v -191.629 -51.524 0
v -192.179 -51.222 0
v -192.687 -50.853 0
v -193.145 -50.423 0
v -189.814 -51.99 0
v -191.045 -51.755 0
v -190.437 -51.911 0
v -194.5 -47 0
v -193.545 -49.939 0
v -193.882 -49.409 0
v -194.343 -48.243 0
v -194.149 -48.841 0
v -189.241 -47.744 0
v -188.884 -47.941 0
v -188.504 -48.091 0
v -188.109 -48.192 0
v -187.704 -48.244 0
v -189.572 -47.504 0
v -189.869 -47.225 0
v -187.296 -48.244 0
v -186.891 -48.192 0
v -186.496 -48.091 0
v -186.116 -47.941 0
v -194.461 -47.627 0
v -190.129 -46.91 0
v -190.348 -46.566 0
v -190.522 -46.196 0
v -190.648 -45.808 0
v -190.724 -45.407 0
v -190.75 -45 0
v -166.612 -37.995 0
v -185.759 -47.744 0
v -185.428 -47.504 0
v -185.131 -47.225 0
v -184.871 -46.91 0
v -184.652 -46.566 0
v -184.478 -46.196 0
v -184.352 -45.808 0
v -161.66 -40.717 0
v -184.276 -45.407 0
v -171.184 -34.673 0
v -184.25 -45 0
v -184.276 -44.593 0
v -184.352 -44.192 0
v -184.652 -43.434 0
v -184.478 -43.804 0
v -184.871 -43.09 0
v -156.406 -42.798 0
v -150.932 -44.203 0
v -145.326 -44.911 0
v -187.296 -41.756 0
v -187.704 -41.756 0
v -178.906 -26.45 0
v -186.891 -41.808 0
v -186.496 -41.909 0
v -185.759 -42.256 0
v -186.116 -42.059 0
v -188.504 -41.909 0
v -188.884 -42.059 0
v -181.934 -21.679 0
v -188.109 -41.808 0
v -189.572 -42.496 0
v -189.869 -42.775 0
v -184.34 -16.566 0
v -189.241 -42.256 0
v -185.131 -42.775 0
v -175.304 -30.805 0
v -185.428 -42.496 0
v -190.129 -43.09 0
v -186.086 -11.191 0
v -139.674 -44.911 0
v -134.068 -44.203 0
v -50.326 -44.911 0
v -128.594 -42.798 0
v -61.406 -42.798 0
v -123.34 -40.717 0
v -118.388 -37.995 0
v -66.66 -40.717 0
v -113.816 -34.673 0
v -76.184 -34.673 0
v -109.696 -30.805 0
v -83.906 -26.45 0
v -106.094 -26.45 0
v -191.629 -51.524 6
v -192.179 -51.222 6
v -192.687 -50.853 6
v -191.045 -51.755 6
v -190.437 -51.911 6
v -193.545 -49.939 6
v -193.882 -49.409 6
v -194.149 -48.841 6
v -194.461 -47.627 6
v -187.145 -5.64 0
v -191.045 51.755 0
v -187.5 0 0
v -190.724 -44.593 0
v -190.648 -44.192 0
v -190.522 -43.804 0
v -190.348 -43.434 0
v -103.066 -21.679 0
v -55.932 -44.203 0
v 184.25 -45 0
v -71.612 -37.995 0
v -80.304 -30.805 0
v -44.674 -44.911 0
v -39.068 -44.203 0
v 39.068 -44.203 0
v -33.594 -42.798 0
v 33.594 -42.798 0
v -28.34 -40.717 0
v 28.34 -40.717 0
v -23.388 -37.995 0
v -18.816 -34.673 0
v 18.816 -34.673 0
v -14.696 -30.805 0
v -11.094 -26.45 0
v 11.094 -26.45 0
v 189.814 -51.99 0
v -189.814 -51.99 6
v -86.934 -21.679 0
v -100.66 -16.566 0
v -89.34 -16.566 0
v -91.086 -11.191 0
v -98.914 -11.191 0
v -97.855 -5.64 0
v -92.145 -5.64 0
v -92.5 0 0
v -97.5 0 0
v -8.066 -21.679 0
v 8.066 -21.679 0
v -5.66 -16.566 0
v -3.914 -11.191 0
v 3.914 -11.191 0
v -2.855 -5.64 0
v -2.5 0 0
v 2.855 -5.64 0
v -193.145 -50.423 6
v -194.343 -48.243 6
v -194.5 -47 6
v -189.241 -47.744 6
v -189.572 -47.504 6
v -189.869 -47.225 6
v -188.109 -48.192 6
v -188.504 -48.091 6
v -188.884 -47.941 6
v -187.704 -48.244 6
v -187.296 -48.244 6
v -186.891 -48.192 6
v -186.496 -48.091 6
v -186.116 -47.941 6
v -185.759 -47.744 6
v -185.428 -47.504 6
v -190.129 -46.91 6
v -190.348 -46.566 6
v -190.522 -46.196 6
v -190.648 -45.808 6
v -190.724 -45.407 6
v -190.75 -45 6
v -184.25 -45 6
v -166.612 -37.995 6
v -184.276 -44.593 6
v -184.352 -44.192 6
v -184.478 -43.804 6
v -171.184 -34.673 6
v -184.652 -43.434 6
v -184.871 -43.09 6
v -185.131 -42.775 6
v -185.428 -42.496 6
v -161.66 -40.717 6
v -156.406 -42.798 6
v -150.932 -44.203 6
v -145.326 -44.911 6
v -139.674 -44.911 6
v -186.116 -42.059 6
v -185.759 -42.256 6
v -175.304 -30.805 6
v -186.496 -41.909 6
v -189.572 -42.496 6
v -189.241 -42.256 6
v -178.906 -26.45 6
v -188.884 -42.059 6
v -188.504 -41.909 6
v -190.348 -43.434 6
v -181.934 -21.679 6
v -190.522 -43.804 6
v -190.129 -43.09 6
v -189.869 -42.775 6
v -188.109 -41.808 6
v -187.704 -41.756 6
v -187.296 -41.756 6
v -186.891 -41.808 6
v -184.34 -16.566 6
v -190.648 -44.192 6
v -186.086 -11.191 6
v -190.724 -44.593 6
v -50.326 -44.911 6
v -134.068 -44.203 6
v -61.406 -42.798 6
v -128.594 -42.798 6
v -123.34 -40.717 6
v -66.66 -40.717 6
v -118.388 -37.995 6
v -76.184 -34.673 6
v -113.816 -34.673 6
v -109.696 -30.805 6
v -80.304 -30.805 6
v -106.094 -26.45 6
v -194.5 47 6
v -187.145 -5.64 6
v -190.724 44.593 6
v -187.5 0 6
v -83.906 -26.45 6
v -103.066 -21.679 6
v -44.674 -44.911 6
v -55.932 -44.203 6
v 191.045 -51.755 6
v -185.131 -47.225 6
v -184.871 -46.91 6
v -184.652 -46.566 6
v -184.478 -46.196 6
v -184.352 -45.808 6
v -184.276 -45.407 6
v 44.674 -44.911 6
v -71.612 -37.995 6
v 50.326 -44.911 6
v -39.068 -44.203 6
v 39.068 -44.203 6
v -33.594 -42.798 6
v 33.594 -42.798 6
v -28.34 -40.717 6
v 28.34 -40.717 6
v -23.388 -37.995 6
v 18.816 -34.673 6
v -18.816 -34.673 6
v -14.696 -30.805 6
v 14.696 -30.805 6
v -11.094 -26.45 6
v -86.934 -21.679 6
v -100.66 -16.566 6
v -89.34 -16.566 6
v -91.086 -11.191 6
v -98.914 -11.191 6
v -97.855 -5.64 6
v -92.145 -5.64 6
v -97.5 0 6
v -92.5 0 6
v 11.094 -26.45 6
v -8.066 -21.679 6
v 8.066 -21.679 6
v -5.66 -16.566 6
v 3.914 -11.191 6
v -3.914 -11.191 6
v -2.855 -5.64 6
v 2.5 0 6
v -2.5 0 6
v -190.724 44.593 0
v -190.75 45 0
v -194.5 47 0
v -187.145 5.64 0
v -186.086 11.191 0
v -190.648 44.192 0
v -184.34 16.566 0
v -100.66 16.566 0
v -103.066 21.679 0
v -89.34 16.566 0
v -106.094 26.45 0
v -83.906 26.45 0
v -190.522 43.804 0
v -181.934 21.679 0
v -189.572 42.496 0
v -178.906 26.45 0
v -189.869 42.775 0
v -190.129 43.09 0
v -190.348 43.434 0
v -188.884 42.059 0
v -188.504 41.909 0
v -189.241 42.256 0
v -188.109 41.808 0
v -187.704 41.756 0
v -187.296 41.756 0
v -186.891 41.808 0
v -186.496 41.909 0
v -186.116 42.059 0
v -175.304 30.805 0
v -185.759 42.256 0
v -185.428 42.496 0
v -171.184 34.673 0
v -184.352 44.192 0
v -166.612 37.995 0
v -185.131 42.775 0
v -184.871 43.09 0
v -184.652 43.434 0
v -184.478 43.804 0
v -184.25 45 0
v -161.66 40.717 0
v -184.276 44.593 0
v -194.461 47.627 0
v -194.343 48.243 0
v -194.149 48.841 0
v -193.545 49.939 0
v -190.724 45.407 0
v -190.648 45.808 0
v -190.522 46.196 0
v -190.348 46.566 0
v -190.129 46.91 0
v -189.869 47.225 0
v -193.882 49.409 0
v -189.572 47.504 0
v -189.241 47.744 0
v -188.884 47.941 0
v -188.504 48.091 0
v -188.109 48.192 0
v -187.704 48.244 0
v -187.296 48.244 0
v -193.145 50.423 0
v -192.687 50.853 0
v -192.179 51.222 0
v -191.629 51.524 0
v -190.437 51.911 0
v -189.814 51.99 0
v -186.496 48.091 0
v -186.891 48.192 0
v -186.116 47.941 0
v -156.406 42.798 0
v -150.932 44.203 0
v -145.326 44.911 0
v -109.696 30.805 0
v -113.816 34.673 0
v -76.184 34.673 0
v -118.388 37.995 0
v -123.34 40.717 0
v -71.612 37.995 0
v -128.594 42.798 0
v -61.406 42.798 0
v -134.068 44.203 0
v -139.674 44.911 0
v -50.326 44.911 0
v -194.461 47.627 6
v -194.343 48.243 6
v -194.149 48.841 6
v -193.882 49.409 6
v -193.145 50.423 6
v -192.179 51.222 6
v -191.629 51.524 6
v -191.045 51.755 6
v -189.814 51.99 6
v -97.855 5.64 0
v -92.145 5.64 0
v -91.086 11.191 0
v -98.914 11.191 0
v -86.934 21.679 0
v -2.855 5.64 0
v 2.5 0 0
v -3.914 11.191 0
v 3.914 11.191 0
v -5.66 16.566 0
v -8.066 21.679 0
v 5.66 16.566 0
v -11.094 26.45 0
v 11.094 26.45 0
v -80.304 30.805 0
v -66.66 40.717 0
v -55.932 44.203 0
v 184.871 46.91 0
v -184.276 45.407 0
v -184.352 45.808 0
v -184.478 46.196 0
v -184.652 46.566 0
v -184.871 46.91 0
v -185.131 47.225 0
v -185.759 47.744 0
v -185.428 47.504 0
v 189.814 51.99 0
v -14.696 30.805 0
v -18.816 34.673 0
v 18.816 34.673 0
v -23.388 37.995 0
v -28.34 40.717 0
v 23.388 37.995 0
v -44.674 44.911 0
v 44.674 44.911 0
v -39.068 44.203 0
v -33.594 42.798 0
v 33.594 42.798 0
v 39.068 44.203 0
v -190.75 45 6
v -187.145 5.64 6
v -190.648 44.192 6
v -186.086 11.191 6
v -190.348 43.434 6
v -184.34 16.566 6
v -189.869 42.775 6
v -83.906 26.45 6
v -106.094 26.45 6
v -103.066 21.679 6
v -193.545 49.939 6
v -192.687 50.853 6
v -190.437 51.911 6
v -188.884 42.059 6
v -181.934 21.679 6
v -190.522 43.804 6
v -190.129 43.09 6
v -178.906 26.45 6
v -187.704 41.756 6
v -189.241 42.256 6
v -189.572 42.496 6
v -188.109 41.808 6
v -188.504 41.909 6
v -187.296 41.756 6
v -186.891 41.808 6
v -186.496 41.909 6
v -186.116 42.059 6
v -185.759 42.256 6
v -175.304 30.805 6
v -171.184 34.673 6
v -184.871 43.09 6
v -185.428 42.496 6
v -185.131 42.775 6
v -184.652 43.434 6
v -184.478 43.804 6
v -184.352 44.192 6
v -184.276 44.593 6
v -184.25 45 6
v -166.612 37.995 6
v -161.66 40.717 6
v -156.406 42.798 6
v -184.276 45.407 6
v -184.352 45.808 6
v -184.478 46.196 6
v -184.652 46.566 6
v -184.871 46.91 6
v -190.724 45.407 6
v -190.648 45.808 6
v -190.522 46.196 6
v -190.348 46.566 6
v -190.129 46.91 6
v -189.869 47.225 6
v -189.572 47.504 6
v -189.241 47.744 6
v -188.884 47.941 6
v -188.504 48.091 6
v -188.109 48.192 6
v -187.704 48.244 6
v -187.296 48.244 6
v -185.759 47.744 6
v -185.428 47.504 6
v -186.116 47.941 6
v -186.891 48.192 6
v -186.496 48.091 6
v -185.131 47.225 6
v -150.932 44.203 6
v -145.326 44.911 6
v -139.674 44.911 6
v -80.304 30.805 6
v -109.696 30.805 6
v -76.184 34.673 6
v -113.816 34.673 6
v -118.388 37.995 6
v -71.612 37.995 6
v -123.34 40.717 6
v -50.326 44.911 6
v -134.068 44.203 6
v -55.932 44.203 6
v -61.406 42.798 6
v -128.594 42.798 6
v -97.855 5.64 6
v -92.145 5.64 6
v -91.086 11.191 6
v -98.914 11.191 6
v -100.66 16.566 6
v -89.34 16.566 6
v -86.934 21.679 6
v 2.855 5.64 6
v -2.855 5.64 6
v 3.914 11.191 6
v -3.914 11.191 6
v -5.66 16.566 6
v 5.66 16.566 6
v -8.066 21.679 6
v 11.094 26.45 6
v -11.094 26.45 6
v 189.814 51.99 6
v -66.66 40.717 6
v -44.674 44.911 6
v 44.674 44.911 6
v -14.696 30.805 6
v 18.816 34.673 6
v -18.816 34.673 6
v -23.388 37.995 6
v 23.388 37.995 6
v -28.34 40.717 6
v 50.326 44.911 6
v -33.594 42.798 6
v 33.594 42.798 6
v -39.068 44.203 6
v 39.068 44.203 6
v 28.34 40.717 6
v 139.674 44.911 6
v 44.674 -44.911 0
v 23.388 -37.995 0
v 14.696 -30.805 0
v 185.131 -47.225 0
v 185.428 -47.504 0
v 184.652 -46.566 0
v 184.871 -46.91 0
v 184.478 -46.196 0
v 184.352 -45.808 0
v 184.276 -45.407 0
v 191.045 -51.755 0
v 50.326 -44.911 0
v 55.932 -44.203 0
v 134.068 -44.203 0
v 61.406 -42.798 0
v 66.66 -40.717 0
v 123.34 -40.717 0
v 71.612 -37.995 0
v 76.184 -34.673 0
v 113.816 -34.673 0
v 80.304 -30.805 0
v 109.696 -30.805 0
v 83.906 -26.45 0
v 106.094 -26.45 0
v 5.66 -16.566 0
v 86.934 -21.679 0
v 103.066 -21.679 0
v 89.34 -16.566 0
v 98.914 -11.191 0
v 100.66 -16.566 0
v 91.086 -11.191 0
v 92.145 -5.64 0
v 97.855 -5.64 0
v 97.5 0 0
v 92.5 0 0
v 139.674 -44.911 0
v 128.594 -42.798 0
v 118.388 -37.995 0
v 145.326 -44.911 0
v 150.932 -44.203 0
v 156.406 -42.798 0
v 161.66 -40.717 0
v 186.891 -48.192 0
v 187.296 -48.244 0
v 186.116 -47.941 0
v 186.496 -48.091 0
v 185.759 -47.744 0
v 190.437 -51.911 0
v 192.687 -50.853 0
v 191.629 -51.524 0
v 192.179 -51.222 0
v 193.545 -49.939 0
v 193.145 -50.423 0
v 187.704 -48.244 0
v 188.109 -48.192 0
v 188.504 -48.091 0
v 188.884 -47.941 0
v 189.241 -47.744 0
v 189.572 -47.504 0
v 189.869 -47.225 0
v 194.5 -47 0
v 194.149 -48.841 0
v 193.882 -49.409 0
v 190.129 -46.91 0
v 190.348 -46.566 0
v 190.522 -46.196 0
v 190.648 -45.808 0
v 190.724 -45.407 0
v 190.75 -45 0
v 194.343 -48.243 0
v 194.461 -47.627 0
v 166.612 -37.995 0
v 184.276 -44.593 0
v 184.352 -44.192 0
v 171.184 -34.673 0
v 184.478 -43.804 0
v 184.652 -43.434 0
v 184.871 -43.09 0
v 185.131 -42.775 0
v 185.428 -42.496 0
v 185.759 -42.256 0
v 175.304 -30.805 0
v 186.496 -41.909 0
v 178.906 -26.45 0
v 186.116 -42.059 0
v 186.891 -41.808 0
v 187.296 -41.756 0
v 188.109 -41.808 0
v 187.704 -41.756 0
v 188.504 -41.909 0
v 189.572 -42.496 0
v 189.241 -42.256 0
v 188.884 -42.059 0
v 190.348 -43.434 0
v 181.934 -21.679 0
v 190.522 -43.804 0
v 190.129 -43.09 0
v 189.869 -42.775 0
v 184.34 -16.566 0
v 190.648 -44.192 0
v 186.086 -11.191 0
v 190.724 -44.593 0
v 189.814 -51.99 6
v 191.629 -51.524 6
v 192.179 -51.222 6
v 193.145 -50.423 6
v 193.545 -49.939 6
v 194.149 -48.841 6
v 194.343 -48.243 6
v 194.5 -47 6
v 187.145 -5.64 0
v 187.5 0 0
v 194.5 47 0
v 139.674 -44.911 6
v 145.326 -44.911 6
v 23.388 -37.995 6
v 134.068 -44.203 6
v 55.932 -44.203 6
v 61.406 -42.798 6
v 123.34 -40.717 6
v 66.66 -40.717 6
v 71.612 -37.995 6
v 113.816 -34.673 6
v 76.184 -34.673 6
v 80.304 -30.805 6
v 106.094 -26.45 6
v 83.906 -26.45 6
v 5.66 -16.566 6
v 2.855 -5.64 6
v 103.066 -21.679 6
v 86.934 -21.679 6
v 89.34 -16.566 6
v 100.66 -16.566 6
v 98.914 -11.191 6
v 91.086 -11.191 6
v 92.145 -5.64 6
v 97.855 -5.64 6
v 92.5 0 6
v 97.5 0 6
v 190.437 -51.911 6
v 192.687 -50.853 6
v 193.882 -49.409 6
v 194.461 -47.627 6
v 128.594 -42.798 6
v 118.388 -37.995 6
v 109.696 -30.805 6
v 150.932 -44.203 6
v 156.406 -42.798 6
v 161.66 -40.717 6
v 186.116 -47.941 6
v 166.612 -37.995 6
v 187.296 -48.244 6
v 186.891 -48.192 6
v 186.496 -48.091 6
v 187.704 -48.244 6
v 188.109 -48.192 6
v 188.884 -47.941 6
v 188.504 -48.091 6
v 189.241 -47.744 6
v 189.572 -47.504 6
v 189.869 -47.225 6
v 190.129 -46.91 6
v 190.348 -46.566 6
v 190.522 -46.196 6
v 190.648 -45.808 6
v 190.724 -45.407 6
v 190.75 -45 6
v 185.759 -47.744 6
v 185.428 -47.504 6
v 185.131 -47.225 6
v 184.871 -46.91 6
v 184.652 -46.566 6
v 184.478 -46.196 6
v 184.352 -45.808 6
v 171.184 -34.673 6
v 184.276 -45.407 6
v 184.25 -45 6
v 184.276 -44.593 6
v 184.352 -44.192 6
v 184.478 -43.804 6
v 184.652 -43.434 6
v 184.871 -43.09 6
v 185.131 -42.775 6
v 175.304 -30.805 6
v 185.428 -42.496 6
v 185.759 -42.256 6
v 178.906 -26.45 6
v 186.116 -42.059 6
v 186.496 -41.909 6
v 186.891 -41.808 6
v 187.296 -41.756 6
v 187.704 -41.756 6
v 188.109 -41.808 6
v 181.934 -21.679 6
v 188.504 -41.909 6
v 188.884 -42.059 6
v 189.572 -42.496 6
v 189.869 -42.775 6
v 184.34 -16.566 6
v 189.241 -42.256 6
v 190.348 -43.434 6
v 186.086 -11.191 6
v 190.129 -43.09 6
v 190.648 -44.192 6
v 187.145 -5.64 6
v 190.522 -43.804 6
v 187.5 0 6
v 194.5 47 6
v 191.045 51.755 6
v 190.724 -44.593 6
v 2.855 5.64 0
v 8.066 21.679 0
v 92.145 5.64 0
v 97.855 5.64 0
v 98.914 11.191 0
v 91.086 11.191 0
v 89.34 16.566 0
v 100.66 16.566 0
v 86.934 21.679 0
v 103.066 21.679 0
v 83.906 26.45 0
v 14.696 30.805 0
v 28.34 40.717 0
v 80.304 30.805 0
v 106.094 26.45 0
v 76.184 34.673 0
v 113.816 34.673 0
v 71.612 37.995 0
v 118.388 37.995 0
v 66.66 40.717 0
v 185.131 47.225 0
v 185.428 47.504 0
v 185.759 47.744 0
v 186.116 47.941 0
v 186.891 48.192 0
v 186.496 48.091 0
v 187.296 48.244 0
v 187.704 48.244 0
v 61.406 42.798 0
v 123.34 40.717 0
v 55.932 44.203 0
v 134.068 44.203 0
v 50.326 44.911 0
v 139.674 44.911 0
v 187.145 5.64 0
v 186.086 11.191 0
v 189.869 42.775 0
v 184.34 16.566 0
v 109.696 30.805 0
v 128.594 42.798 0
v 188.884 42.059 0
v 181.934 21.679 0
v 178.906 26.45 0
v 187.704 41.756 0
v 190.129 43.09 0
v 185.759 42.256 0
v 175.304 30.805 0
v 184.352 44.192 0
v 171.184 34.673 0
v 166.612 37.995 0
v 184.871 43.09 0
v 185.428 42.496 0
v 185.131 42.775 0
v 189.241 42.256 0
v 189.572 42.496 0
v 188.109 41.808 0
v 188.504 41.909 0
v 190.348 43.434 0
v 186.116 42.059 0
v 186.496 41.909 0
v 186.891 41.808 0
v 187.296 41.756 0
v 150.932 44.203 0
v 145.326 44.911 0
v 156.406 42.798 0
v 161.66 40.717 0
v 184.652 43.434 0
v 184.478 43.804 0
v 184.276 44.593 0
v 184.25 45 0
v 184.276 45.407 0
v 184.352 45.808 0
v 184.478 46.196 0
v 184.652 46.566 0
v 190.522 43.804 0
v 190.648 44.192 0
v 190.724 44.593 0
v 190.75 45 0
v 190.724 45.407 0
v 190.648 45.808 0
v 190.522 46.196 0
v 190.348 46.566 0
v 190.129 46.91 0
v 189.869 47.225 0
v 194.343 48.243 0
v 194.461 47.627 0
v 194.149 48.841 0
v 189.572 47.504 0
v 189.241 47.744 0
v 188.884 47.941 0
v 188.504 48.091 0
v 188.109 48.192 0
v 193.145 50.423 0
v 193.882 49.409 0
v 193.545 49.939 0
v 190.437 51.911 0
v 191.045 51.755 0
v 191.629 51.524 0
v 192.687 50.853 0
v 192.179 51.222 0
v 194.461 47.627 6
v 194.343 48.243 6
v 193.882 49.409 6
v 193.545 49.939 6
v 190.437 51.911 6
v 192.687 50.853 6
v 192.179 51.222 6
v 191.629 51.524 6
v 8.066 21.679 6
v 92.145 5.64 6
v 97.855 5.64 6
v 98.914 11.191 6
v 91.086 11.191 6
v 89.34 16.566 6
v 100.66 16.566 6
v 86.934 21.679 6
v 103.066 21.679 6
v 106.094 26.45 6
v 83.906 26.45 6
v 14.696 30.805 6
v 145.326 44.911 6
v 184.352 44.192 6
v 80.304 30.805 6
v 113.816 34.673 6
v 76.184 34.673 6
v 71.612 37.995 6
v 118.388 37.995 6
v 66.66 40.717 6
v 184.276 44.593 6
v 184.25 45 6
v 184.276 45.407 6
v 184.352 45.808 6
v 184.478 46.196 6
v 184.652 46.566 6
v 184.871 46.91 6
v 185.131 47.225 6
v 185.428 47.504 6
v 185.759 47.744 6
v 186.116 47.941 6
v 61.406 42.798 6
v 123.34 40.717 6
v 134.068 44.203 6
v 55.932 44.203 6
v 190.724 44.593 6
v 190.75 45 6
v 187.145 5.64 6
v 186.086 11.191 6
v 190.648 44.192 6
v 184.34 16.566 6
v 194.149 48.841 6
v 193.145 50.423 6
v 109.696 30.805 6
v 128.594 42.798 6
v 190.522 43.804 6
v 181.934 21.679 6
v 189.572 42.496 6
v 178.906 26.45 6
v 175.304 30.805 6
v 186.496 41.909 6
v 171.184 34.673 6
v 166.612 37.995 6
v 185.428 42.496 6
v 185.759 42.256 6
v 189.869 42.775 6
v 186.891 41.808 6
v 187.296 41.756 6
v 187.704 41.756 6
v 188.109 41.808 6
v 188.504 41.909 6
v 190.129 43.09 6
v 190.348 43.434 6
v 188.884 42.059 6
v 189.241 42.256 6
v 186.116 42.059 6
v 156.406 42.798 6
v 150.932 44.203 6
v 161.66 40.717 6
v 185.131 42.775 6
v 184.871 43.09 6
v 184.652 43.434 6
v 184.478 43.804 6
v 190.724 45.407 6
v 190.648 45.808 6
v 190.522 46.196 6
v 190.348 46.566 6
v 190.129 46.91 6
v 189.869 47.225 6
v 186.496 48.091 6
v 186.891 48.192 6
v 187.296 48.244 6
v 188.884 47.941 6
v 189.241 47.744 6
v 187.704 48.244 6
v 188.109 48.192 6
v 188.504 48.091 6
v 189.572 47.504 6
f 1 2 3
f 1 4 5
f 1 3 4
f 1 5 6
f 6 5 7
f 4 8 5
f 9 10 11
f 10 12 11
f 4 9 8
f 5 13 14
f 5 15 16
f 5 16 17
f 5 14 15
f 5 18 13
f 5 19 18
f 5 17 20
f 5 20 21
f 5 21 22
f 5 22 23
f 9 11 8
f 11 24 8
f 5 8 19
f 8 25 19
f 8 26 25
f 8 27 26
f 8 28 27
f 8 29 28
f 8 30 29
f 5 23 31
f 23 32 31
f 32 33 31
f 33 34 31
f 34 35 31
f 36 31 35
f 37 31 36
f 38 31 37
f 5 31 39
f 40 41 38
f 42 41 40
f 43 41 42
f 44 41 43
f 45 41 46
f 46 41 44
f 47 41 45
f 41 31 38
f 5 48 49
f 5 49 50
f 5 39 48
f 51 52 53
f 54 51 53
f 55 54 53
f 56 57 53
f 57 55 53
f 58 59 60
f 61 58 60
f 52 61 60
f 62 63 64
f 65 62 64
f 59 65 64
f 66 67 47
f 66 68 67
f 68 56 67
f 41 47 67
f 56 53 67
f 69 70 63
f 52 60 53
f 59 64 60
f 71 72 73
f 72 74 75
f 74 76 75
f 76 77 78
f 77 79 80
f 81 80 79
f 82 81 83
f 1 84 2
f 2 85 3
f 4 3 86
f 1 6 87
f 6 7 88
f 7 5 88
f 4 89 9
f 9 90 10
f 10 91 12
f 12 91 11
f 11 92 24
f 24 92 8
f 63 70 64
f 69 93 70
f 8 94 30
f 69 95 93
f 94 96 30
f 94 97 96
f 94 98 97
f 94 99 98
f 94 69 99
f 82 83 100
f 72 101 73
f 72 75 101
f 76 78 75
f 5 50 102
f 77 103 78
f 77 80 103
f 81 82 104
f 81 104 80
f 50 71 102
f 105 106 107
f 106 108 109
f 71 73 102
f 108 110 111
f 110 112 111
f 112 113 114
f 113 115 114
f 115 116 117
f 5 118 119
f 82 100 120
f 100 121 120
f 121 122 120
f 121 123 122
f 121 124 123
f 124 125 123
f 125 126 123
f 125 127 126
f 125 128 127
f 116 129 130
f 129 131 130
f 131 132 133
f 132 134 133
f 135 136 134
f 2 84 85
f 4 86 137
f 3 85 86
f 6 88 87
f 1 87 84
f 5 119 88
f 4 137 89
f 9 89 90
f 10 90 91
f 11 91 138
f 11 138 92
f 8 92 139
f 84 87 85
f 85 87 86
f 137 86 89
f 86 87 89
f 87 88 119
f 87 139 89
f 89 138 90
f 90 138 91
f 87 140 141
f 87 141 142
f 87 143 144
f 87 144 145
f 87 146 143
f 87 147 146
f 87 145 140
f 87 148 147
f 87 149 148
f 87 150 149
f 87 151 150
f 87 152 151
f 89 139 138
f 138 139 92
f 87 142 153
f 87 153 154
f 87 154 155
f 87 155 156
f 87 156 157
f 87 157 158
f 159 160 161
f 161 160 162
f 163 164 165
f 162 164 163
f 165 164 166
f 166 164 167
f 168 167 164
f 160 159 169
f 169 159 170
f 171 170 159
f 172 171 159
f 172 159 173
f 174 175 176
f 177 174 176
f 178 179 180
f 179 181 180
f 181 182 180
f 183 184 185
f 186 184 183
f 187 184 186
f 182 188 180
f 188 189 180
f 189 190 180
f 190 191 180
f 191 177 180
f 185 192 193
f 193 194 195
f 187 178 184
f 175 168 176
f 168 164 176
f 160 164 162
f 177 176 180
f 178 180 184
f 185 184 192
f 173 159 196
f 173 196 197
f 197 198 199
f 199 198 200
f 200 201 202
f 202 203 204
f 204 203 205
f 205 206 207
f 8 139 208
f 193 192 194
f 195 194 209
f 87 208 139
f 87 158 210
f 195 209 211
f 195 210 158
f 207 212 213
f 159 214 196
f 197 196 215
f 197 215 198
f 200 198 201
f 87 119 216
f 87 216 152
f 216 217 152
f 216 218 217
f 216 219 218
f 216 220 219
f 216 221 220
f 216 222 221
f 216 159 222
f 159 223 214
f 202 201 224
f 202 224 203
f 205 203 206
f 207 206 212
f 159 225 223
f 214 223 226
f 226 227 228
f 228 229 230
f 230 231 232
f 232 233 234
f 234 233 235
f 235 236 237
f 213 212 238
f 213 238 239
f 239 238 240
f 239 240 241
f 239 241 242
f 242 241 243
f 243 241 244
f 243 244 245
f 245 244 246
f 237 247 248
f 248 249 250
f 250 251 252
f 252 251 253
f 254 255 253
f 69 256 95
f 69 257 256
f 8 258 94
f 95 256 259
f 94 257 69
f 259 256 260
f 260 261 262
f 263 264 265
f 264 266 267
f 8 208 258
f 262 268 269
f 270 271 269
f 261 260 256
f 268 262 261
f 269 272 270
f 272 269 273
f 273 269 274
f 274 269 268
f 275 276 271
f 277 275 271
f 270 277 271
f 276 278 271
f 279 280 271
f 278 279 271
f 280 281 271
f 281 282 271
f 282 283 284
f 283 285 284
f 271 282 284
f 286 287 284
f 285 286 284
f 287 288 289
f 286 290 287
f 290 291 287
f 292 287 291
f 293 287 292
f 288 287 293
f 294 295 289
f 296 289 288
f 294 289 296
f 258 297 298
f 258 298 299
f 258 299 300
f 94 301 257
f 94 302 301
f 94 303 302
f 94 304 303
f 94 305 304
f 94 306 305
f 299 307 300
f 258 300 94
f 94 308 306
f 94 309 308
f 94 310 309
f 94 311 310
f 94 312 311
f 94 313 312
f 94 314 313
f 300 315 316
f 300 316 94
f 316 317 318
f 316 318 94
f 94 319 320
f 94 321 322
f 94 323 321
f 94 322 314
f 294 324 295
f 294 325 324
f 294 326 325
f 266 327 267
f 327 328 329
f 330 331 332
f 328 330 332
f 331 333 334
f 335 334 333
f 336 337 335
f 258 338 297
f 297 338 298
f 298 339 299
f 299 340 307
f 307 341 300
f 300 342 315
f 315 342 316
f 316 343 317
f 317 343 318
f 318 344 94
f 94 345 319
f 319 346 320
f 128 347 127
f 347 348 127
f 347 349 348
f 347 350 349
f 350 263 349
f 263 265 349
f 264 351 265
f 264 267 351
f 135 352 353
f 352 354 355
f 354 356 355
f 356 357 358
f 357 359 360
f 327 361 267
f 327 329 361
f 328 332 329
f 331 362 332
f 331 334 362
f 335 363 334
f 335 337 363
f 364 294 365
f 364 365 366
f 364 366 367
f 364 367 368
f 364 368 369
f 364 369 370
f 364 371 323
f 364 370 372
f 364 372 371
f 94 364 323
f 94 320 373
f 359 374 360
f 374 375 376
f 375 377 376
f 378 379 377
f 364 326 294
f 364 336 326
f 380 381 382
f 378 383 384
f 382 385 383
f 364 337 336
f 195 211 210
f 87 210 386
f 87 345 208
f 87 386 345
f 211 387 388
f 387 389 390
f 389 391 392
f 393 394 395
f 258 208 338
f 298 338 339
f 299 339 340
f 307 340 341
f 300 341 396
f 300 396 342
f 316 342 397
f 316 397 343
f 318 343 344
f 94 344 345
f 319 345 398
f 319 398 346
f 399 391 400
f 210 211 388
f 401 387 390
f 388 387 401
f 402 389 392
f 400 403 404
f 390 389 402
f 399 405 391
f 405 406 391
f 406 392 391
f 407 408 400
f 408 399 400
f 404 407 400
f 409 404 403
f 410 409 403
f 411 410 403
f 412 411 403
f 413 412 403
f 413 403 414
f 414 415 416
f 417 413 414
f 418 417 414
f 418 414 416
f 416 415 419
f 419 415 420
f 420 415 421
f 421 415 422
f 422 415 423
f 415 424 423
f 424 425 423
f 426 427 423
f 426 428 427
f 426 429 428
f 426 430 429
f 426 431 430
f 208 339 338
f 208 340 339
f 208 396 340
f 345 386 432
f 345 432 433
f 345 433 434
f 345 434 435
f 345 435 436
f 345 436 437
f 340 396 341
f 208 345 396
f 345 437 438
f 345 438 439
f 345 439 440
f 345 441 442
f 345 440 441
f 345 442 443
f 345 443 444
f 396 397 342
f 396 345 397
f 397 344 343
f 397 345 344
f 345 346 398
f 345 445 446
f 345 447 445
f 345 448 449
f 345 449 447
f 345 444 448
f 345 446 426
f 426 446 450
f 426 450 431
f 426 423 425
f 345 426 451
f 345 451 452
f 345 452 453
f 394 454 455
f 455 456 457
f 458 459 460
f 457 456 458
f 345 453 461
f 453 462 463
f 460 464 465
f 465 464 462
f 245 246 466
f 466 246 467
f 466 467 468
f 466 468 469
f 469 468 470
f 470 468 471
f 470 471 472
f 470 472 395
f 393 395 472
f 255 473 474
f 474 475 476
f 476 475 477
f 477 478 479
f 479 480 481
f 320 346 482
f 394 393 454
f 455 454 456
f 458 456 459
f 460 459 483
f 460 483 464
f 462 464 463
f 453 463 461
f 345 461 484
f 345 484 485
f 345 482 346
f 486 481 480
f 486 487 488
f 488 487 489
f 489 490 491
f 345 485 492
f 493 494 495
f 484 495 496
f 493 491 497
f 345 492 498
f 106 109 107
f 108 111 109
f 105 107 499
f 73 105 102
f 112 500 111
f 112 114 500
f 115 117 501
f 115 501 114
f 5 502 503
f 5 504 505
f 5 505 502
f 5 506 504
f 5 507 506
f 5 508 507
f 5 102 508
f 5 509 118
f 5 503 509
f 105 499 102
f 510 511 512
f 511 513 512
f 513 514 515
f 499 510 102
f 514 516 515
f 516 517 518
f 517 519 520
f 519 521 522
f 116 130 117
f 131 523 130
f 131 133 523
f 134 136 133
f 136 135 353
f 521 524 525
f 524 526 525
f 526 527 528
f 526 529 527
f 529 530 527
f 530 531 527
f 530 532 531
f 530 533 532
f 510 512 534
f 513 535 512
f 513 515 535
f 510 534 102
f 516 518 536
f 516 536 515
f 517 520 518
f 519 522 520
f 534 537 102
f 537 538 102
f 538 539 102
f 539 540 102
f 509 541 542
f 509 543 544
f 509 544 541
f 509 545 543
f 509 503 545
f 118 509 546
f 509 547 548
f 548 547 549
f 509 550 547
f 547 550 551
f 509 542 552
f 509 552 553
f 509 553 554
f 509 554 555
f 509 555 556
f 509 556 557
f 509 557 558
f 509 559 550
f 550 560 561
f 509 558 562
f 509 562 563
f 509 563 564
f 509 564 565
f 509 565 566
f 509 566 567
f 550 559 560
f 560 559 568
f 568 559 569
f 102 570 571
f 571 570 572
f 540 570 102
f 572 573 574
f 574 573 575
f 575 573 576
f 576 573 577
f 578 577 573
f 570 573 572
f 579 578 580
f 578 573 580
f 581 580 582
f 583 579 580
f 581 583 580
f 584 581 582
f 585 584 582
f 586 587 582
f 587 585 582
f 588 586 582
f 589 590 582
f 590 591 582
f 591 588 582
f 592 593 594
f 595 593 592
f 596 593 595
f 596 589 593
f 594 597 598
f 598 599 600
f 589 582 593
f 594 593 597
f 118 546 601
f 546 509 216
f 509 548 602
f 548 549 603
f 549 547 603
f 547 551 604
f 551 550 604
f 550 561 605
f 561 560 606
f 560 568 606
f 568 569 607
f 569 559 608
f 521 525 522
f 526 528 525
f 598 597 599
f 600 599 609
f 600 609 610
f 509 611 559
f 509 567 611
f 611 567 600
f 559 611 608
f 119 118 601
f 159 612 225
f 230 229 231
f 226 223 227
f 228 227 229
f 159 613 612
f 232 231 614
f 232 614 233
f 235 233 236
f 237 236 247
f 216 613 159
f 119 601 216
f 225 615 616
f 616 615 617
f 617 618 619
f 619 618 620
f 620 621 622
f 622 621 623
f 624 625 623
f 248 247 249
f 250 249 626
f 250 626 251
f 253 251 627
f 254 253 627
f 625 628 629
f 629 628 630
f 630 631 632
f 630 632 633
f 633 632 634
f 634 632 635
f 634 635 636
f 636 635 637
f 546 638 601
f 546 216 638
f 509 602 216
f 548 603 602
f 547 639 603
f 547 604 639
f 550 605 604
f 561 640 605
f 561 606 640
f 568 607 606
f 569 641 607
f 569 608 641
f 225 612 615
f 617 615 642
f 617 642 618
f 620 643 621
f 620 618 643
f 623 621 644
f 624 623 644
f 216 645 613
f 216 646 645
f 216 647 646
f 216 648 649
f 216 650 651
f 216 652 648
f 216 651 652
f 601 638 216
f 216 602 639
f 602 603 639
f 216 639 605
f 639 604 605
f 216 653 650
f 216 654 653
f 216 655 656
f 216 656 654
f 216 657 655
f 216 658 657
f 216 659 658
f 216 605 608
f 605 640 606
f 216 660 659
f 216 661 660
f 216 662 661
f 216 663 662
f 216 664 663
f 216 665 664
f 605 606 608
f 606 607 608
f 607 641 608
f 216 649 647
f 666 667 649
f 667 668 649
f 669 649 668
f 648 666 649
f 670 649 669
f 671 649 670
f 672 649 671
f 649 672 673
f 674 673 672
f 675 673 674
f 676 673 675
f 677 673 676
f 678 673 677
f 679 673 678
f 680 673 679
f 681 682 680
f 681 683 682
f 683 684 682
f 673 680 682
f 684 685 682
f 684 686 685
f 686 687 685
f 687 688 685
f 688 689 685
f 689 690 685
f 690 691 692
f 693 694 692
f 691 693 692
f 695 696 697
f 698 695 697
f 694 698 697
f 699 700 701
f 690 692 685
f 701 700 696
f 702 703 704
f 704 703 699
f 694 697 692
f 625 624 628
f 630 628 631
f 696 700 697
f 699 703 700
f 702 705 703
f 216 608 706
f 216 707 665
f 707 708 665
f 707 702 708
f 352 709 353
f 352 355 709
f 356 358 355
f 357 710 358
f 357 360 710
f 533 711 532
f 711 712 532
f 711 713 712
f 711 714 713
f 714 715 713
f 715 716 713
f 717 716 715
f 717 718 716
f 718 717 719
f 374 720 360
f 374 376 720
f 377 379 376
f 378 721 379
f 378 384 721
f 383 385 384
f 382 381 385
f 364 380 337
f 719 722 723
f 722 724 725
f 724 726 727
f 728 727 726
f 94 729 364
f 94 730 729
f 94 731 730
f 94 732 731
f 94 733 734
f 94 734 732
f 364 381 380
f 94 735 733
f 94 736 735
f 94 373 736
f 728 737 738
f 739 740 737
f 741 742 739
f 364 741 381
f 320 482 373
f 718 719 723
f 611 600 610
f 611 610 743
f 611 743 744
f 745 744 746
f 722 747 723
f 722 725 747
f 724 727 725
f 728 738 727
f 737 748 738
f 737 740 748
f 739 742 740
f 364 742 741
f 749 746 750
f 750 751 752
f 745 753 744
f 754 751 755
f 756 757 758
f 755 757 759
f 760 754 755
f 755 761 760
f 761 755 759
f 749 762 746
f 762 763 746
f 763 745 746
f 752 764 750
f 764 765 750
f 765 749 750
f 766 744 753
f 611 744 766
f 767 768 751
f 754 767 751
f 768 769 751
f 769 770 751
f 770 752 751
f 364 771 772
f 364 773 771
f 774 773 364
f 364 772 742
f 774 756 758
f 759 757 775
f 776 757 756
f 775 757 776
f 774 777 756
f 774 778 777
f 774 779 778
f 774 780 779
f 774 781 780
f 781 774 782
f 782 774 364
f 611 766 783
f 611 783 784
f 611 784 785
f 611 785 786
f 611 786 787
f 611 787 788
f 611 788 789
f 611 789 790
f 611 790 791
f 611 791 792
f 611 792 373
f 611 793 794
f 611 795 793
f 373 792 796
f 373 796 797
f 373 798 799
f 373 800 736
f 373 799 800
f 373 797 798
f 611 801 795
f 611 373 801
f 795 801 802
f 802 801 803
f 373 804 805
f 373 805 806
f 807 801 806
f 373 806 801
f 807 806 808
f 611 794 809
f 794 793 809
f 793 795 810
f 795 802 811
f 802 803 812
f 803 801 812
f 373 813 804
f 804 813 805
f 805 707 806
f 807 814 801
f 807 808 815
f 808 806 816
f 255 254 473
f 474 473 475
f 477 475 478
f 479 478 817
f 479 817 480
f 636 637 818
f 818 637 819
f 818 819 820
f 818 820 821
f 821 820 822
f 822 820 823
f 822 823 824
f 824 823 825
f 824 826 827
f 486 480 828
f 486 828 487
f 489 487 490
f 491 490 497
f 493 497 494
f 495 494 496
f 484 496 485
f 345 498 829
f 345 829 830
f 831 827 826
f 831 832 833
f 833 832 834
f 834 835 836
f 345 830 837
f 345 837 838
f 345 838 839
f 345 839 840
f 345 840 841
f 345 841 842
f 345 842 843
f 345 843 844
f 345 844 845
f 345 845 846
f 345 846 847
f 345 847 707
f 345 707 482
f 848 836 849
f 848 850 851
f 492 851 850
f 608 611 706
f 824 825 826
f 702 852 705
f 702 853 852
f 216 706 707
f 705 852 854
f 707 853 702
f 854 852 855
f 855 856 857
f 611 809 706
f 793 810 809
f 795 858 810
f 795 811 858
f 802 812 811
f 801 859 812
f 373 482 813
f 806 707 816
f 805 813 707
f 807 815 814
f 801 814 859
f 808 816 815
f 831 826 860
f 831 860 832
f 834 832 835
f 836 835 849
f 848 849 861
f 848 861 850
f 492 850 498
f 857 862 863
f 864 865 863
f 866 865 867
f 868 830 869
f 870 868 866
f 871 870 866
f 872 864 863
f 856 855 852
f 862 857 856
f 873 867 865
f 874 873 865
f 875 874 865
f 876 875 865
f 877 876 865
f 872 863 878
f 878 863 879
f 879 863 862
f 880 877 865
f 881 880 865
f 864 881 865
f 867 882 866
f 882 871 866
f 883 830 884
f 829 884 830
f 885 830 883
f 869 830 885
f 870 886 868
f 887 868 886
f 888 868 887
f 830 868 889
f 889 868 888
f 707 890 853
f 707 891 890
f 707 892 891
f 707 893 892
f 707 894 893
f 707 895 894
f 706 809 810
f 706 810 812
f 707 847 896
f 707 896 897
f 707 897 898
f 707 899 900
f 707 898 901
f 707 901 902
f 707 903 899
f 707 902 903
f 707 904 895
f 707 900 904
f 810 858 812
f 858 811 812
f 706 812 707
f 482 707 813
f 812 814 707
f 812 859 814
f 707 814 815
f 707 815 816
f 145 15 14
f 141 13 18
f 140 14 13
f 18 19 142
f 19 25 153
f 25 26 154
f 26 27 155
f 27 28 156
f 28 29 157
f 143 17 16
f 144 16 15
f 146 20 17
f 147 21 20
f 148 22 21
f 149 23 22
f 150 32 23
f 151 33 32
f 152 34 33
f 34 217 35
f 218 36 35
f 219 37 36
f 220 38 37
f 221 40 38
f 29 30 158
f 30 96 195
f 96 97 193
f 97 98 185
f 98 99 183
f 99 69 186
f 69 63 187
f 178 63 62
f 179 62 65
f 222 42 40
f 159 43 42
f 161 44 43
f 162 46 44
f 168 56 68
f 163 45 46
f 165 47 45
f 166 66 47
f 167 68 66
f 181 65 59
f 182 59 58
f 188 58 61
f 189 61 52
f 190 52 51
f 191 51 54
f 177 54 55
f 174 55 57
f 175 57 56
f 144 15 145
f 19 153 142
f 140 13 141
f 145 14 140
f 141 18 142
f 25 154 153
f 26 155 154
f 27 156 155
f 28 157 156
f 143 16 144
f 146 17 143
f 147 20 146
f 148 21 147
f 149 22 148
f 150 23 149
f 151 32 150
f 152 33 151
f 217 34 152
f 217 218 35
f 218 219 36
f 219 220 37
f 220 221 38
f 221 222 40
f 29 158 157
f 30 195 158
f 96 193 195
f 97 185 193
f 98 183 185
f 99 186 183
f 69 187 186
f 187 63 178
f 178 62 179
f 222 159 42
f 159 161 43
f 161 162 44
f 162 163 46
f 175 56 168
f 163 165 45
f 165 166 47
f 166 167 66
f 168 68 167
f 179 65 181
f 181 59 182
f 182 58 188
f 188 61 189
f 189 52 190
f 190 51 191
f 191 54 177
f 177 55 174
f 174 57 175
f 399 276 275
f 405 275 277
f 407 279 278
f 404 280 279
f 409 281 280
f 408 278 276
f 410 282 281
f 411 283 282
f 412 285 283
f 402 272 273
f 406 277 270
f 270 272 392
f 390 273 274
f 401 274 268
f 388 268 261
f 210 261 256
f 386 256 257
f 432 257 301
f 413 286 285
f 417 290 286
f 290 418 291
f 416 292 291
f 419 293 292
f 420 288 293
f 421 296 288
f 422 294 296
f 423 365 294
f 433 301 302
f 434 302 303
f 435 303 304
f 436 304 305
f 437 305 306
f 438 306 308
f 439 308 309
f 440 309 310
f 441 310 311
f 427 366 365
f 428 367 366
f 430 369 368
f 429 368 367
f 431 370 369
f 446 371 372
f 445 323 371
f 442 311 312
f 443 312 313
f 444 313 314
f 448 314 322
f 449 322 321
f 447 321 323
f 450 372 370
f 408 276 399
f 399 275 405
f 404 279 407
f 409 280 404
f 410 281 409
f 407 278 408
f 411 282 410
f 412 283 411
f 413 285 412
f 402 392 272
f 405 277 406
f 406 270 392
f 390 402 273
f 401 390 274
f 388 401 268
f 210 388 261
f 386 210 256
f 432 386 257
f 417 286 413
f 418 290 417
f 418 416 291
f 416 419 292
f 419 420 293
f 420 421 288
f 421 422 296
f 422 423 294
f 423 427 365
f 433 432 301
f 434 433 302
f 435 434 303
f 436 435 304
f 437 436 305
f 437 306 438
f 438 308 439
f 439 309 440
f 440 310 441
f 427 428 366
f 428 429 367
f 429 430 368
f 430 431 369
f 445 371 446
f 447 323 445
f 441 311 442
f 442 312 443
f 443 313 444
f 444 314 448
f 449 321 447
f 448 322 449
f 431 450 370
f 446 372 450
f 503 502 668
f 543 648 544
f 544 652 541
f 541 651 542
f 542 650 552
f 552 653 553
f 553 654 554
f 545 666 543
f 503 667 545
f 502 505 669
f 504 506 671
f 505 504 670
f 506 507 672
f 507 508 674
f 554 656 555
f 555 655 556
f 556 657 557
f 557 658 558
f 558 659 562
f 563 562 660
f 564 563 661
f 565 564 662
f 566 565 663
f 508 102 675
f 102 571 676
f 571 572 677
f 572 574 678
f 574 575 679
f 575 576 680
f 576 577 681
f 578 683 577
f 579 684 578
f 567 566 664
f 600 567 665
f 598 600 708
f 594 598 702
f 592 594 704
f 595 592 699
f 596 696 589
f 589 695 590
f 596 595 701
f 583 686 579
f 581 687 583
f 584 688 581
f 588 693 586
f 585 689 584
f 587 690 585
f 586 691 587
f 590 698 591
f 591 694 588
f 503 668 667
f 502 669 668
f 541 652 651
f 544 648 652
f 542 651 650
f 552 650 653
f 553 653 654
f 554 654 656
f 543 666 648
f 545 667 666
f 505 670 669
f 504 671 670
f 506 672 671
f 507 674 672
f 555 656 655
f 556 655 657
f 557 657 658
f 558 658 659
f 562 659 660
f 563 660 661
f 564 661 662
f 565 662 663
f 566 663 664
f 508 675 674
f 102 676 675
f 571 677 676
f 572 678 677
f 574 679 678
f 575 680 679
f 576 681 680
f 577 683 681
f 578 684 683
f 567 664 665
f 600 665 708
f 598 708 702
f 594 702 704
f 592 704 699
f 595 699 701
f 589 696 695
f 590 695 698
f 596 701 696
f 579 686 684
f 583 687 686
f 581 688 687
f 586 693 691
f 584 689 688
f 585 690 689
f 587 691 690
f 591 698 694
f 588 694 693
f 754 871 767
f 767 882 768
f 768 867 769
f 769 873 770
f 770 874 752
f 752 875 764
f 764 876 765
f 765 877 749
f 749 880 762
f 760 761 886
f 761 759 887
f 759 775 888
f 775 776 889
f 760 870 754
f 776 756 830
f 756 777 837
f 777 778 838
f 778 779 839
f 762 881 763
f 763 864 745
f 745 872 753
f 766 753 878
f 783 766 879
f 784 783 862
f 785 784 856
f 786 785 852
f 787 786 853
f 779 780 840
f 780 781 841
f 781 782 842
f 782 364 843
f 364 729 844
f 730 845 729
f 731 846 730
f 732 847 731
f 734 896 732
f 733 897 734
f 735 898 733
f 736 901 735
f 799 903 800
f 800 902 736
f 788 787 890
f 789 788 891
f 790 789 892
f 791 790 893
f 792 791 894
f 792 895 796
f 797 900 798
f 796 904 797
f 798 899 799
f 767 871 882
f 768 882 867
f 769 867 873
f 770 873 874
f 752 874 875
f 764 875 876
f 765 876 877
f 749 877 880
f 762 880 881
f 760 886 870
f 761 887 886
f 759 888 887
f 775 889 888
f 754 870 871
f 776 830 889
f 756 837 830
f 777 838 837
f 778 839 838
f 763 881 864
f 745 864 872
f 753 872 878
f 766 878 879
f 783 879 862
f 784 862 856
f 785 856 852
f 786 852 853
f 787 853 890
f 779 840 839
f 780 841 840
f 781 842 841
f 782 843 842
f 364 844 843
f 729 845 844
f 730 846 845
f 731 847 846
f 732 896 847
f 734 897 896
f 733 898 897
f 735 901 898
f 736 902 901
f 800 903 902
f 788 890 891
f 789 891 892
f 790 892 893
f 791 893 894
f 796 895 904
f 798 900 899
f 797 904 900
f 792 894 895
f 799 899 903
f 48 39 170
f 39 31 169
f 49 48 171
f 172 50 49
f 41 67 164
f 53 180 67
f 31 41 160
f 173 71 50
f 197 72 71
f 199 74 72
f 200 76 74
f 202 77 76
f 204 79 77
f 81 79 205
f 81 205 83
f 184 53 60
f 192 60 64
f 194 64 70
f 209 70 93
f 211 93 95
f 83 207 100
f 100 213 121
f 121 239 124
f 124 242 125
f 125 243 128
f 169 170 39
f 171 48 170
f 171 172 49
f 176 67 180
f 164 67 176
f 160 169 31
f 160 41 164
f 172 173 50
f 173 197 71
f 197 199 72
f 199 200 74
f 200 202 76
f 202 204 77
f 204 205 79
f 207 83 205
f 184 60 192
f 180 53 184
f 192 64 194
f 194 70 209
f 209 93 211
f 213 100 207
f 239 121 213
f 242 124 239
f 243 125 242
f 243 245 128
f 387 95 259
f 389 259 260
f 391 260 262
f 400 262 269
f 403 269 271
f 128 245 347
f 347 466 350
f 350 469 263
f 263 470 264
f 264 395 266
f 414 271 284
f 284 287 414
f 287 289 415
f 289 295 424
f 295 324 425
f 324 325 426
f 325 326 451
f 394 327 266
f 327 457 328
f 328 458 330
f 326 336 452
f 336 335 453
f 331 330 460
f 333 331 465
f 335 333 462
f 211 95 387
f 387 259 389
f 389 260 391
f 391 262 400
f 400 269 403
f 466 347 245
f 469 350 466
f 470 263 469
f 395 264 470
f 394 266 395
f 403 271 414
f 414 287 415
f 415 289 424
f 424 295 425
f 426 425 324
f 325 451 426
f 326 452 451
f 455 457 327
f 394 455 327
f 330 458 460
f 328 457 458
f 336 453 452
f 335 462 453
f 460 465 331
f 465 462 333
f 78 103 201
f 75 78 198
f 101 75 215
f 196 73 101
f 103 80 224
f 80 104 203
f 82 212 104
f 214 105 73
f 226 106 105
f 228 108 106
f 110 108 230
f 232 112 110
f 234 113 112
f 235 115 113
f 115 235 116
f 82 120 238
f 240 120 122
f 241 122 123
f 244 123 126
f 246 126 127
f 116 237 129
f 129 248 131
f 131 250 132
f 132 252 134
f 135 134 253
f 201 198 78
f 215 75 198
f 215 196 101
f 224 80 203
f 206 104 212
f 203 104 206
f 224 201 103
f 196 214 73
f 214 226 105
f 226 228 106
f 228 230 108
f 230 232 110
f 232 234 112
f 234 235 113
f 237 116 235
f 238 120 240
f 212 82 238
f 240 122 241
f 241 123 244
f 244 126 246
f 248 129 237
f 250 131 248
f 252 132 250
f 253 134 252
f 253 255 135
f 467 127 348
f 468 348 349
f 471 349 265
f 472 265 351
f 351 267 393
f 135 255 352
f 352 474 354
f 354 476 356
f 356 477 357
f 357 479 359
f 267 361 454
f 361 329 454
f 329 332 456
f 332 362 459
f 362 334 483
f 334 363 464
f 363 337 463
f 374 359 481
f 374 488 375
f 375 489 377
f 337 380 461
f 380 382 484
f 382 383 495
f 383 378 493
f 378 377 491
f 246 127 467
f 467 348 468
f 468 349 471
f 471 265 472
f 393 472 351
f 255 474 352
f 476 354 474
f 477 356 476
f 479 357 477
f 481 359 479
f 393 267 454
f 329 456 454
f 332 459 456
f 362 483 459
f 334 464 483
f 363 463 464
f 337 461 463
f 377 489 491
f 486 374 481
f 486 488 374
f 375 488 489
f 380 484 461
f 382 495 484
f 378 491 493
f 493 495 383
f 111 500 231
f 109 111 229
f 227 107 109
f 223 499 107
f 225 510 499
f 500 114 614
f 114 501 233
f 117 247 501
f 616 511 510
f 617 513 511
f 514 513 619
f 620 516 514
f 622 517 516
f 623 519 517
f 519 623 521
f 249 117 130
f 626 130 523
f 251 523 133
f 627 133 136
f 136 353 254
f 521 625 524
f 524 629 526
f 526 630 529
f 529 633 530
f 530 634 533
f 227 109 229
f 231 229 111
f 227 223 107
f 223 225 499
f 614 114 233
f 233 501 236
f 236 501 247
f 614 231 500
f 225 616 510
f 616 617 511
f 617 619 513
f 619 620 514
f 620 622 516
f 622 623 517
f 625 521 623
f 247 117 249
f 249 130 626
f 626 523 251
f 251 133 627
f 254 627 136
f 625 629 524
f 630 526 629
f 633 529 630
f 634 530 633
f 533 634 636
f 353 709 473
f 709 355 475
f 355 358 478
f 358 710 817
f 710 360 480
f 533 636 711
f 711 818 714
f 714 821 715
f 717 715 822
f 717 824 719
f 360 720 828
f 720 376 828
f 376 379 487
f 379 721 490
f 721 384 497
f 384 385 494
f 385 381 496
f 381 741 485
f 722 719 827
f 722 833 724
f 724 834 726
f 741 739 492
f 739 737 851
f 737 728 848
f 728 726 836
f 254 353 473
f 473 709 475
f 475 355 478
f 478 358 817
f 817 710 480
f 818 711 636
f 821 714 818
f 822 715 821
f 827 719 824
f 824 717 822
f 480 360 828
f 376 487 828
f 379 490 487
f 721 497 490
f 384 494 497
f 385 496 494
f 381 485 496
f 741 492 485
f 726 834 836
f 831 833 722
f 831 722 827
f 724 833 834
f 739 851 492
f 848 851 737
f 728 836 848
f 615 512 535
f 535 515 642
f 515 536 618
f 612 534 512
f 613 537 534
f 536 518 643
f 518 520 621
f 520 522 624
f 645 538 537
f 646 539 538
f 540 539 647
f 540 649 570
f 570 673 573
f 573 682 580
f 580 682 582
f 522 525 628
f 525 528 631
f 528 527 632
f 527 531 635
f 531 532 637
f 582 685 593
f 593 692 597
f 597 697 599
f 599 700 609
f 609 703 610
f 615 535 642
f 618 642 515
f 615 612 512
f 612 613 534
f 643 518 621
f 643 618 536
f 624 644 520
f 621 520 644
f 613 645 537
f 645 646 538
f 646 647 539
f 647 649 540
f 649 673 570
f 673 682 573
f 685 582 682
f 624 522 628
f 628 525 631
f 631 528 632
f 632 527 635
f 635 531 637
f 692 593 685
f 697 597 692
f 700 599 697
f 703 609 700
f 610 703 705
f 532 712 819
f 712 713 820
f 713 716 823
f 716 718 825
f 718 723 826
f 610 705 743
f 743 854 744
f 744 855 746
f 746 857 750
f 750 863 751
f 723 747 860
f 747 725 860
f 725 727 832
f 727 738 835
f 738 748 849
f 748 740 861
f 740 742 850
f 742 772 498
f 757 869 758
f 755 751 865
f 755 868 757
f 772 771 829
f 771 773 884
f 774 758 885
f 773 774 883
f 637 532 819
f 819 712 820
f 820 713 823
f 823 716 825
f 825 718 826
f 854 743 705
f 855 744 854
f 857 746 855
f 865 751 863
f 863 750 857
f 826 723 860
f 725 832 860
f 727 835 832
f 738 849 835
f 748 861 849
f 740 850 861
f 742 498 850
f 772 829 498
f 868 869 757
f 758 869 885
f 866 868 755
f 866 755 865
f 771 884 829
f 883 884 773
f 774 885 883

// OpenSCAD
$fn = 50;

difference() {
	union() {
		hull() {
			translate(v = [-189.5, 47.0, 0]) {
				cylinder(h = 6, r = 5);
			}
			translate(v = [189.5, 47.0, 0]) {
				cylinder(h = 6, r = 5);
			}
			translate(v = [-189.5, -47.0, 0]) {
				cylinder(h = 6, r = 5);
			}
			translate(v = [189.5, -47.0, 0]) {
				cylinder(h = 6, r = 5);
			}
		}
	}
	union() {
		translate(v = [-187.5, -45.0, -100.0]) {
			cylinder(h = 200, r = 3.25);
		}
		translate(v = [-187.5, 45.0, -100.0]) {
			cylinder(h = 200, r = 3.25);
		}
		translate(v = [187.5, -45.0, -100.0]) {
			cylinder(h = 200, r = 3.25);
		}
		translate(v = [187.5, 45.0, -100.0]) {
			cylinder(h = 200, r = 3.25);
		}
		translate(v = [-187.5, -45.0, -100.0]) {
			cylinder(h = 200, r = 1.8);
		}
		translate(v = [-187.5, 45.0, -100.0]) {
			cylinder(h = 200, r = 1.8);
		}
		translate(v = [187.5, -45.0, -100.0]) {
			cylinder(h = 200, r = 1.8);
		}
		translate(v = [187.5, 45.0, -100.0]) {
			cylinder(h = 200, r = 1.8);
		}
		translate(v = [-142.5, 0, 0.0]) {
			cylinder(h = 6, r = 45.0);
		}
		translate(v = [-47.5, 0, 0.0]) {
			cylinder(h = 6, r = 45.0);
		}
		translate(v = [47.5, 0, 0.0]) {
			cylinder(h = 6, r = 45.0);
		}
		translate(v = [142.5, 0, 0.0]) {
			cylinder(h = 6, r = 45.0);
		}
	}
}
